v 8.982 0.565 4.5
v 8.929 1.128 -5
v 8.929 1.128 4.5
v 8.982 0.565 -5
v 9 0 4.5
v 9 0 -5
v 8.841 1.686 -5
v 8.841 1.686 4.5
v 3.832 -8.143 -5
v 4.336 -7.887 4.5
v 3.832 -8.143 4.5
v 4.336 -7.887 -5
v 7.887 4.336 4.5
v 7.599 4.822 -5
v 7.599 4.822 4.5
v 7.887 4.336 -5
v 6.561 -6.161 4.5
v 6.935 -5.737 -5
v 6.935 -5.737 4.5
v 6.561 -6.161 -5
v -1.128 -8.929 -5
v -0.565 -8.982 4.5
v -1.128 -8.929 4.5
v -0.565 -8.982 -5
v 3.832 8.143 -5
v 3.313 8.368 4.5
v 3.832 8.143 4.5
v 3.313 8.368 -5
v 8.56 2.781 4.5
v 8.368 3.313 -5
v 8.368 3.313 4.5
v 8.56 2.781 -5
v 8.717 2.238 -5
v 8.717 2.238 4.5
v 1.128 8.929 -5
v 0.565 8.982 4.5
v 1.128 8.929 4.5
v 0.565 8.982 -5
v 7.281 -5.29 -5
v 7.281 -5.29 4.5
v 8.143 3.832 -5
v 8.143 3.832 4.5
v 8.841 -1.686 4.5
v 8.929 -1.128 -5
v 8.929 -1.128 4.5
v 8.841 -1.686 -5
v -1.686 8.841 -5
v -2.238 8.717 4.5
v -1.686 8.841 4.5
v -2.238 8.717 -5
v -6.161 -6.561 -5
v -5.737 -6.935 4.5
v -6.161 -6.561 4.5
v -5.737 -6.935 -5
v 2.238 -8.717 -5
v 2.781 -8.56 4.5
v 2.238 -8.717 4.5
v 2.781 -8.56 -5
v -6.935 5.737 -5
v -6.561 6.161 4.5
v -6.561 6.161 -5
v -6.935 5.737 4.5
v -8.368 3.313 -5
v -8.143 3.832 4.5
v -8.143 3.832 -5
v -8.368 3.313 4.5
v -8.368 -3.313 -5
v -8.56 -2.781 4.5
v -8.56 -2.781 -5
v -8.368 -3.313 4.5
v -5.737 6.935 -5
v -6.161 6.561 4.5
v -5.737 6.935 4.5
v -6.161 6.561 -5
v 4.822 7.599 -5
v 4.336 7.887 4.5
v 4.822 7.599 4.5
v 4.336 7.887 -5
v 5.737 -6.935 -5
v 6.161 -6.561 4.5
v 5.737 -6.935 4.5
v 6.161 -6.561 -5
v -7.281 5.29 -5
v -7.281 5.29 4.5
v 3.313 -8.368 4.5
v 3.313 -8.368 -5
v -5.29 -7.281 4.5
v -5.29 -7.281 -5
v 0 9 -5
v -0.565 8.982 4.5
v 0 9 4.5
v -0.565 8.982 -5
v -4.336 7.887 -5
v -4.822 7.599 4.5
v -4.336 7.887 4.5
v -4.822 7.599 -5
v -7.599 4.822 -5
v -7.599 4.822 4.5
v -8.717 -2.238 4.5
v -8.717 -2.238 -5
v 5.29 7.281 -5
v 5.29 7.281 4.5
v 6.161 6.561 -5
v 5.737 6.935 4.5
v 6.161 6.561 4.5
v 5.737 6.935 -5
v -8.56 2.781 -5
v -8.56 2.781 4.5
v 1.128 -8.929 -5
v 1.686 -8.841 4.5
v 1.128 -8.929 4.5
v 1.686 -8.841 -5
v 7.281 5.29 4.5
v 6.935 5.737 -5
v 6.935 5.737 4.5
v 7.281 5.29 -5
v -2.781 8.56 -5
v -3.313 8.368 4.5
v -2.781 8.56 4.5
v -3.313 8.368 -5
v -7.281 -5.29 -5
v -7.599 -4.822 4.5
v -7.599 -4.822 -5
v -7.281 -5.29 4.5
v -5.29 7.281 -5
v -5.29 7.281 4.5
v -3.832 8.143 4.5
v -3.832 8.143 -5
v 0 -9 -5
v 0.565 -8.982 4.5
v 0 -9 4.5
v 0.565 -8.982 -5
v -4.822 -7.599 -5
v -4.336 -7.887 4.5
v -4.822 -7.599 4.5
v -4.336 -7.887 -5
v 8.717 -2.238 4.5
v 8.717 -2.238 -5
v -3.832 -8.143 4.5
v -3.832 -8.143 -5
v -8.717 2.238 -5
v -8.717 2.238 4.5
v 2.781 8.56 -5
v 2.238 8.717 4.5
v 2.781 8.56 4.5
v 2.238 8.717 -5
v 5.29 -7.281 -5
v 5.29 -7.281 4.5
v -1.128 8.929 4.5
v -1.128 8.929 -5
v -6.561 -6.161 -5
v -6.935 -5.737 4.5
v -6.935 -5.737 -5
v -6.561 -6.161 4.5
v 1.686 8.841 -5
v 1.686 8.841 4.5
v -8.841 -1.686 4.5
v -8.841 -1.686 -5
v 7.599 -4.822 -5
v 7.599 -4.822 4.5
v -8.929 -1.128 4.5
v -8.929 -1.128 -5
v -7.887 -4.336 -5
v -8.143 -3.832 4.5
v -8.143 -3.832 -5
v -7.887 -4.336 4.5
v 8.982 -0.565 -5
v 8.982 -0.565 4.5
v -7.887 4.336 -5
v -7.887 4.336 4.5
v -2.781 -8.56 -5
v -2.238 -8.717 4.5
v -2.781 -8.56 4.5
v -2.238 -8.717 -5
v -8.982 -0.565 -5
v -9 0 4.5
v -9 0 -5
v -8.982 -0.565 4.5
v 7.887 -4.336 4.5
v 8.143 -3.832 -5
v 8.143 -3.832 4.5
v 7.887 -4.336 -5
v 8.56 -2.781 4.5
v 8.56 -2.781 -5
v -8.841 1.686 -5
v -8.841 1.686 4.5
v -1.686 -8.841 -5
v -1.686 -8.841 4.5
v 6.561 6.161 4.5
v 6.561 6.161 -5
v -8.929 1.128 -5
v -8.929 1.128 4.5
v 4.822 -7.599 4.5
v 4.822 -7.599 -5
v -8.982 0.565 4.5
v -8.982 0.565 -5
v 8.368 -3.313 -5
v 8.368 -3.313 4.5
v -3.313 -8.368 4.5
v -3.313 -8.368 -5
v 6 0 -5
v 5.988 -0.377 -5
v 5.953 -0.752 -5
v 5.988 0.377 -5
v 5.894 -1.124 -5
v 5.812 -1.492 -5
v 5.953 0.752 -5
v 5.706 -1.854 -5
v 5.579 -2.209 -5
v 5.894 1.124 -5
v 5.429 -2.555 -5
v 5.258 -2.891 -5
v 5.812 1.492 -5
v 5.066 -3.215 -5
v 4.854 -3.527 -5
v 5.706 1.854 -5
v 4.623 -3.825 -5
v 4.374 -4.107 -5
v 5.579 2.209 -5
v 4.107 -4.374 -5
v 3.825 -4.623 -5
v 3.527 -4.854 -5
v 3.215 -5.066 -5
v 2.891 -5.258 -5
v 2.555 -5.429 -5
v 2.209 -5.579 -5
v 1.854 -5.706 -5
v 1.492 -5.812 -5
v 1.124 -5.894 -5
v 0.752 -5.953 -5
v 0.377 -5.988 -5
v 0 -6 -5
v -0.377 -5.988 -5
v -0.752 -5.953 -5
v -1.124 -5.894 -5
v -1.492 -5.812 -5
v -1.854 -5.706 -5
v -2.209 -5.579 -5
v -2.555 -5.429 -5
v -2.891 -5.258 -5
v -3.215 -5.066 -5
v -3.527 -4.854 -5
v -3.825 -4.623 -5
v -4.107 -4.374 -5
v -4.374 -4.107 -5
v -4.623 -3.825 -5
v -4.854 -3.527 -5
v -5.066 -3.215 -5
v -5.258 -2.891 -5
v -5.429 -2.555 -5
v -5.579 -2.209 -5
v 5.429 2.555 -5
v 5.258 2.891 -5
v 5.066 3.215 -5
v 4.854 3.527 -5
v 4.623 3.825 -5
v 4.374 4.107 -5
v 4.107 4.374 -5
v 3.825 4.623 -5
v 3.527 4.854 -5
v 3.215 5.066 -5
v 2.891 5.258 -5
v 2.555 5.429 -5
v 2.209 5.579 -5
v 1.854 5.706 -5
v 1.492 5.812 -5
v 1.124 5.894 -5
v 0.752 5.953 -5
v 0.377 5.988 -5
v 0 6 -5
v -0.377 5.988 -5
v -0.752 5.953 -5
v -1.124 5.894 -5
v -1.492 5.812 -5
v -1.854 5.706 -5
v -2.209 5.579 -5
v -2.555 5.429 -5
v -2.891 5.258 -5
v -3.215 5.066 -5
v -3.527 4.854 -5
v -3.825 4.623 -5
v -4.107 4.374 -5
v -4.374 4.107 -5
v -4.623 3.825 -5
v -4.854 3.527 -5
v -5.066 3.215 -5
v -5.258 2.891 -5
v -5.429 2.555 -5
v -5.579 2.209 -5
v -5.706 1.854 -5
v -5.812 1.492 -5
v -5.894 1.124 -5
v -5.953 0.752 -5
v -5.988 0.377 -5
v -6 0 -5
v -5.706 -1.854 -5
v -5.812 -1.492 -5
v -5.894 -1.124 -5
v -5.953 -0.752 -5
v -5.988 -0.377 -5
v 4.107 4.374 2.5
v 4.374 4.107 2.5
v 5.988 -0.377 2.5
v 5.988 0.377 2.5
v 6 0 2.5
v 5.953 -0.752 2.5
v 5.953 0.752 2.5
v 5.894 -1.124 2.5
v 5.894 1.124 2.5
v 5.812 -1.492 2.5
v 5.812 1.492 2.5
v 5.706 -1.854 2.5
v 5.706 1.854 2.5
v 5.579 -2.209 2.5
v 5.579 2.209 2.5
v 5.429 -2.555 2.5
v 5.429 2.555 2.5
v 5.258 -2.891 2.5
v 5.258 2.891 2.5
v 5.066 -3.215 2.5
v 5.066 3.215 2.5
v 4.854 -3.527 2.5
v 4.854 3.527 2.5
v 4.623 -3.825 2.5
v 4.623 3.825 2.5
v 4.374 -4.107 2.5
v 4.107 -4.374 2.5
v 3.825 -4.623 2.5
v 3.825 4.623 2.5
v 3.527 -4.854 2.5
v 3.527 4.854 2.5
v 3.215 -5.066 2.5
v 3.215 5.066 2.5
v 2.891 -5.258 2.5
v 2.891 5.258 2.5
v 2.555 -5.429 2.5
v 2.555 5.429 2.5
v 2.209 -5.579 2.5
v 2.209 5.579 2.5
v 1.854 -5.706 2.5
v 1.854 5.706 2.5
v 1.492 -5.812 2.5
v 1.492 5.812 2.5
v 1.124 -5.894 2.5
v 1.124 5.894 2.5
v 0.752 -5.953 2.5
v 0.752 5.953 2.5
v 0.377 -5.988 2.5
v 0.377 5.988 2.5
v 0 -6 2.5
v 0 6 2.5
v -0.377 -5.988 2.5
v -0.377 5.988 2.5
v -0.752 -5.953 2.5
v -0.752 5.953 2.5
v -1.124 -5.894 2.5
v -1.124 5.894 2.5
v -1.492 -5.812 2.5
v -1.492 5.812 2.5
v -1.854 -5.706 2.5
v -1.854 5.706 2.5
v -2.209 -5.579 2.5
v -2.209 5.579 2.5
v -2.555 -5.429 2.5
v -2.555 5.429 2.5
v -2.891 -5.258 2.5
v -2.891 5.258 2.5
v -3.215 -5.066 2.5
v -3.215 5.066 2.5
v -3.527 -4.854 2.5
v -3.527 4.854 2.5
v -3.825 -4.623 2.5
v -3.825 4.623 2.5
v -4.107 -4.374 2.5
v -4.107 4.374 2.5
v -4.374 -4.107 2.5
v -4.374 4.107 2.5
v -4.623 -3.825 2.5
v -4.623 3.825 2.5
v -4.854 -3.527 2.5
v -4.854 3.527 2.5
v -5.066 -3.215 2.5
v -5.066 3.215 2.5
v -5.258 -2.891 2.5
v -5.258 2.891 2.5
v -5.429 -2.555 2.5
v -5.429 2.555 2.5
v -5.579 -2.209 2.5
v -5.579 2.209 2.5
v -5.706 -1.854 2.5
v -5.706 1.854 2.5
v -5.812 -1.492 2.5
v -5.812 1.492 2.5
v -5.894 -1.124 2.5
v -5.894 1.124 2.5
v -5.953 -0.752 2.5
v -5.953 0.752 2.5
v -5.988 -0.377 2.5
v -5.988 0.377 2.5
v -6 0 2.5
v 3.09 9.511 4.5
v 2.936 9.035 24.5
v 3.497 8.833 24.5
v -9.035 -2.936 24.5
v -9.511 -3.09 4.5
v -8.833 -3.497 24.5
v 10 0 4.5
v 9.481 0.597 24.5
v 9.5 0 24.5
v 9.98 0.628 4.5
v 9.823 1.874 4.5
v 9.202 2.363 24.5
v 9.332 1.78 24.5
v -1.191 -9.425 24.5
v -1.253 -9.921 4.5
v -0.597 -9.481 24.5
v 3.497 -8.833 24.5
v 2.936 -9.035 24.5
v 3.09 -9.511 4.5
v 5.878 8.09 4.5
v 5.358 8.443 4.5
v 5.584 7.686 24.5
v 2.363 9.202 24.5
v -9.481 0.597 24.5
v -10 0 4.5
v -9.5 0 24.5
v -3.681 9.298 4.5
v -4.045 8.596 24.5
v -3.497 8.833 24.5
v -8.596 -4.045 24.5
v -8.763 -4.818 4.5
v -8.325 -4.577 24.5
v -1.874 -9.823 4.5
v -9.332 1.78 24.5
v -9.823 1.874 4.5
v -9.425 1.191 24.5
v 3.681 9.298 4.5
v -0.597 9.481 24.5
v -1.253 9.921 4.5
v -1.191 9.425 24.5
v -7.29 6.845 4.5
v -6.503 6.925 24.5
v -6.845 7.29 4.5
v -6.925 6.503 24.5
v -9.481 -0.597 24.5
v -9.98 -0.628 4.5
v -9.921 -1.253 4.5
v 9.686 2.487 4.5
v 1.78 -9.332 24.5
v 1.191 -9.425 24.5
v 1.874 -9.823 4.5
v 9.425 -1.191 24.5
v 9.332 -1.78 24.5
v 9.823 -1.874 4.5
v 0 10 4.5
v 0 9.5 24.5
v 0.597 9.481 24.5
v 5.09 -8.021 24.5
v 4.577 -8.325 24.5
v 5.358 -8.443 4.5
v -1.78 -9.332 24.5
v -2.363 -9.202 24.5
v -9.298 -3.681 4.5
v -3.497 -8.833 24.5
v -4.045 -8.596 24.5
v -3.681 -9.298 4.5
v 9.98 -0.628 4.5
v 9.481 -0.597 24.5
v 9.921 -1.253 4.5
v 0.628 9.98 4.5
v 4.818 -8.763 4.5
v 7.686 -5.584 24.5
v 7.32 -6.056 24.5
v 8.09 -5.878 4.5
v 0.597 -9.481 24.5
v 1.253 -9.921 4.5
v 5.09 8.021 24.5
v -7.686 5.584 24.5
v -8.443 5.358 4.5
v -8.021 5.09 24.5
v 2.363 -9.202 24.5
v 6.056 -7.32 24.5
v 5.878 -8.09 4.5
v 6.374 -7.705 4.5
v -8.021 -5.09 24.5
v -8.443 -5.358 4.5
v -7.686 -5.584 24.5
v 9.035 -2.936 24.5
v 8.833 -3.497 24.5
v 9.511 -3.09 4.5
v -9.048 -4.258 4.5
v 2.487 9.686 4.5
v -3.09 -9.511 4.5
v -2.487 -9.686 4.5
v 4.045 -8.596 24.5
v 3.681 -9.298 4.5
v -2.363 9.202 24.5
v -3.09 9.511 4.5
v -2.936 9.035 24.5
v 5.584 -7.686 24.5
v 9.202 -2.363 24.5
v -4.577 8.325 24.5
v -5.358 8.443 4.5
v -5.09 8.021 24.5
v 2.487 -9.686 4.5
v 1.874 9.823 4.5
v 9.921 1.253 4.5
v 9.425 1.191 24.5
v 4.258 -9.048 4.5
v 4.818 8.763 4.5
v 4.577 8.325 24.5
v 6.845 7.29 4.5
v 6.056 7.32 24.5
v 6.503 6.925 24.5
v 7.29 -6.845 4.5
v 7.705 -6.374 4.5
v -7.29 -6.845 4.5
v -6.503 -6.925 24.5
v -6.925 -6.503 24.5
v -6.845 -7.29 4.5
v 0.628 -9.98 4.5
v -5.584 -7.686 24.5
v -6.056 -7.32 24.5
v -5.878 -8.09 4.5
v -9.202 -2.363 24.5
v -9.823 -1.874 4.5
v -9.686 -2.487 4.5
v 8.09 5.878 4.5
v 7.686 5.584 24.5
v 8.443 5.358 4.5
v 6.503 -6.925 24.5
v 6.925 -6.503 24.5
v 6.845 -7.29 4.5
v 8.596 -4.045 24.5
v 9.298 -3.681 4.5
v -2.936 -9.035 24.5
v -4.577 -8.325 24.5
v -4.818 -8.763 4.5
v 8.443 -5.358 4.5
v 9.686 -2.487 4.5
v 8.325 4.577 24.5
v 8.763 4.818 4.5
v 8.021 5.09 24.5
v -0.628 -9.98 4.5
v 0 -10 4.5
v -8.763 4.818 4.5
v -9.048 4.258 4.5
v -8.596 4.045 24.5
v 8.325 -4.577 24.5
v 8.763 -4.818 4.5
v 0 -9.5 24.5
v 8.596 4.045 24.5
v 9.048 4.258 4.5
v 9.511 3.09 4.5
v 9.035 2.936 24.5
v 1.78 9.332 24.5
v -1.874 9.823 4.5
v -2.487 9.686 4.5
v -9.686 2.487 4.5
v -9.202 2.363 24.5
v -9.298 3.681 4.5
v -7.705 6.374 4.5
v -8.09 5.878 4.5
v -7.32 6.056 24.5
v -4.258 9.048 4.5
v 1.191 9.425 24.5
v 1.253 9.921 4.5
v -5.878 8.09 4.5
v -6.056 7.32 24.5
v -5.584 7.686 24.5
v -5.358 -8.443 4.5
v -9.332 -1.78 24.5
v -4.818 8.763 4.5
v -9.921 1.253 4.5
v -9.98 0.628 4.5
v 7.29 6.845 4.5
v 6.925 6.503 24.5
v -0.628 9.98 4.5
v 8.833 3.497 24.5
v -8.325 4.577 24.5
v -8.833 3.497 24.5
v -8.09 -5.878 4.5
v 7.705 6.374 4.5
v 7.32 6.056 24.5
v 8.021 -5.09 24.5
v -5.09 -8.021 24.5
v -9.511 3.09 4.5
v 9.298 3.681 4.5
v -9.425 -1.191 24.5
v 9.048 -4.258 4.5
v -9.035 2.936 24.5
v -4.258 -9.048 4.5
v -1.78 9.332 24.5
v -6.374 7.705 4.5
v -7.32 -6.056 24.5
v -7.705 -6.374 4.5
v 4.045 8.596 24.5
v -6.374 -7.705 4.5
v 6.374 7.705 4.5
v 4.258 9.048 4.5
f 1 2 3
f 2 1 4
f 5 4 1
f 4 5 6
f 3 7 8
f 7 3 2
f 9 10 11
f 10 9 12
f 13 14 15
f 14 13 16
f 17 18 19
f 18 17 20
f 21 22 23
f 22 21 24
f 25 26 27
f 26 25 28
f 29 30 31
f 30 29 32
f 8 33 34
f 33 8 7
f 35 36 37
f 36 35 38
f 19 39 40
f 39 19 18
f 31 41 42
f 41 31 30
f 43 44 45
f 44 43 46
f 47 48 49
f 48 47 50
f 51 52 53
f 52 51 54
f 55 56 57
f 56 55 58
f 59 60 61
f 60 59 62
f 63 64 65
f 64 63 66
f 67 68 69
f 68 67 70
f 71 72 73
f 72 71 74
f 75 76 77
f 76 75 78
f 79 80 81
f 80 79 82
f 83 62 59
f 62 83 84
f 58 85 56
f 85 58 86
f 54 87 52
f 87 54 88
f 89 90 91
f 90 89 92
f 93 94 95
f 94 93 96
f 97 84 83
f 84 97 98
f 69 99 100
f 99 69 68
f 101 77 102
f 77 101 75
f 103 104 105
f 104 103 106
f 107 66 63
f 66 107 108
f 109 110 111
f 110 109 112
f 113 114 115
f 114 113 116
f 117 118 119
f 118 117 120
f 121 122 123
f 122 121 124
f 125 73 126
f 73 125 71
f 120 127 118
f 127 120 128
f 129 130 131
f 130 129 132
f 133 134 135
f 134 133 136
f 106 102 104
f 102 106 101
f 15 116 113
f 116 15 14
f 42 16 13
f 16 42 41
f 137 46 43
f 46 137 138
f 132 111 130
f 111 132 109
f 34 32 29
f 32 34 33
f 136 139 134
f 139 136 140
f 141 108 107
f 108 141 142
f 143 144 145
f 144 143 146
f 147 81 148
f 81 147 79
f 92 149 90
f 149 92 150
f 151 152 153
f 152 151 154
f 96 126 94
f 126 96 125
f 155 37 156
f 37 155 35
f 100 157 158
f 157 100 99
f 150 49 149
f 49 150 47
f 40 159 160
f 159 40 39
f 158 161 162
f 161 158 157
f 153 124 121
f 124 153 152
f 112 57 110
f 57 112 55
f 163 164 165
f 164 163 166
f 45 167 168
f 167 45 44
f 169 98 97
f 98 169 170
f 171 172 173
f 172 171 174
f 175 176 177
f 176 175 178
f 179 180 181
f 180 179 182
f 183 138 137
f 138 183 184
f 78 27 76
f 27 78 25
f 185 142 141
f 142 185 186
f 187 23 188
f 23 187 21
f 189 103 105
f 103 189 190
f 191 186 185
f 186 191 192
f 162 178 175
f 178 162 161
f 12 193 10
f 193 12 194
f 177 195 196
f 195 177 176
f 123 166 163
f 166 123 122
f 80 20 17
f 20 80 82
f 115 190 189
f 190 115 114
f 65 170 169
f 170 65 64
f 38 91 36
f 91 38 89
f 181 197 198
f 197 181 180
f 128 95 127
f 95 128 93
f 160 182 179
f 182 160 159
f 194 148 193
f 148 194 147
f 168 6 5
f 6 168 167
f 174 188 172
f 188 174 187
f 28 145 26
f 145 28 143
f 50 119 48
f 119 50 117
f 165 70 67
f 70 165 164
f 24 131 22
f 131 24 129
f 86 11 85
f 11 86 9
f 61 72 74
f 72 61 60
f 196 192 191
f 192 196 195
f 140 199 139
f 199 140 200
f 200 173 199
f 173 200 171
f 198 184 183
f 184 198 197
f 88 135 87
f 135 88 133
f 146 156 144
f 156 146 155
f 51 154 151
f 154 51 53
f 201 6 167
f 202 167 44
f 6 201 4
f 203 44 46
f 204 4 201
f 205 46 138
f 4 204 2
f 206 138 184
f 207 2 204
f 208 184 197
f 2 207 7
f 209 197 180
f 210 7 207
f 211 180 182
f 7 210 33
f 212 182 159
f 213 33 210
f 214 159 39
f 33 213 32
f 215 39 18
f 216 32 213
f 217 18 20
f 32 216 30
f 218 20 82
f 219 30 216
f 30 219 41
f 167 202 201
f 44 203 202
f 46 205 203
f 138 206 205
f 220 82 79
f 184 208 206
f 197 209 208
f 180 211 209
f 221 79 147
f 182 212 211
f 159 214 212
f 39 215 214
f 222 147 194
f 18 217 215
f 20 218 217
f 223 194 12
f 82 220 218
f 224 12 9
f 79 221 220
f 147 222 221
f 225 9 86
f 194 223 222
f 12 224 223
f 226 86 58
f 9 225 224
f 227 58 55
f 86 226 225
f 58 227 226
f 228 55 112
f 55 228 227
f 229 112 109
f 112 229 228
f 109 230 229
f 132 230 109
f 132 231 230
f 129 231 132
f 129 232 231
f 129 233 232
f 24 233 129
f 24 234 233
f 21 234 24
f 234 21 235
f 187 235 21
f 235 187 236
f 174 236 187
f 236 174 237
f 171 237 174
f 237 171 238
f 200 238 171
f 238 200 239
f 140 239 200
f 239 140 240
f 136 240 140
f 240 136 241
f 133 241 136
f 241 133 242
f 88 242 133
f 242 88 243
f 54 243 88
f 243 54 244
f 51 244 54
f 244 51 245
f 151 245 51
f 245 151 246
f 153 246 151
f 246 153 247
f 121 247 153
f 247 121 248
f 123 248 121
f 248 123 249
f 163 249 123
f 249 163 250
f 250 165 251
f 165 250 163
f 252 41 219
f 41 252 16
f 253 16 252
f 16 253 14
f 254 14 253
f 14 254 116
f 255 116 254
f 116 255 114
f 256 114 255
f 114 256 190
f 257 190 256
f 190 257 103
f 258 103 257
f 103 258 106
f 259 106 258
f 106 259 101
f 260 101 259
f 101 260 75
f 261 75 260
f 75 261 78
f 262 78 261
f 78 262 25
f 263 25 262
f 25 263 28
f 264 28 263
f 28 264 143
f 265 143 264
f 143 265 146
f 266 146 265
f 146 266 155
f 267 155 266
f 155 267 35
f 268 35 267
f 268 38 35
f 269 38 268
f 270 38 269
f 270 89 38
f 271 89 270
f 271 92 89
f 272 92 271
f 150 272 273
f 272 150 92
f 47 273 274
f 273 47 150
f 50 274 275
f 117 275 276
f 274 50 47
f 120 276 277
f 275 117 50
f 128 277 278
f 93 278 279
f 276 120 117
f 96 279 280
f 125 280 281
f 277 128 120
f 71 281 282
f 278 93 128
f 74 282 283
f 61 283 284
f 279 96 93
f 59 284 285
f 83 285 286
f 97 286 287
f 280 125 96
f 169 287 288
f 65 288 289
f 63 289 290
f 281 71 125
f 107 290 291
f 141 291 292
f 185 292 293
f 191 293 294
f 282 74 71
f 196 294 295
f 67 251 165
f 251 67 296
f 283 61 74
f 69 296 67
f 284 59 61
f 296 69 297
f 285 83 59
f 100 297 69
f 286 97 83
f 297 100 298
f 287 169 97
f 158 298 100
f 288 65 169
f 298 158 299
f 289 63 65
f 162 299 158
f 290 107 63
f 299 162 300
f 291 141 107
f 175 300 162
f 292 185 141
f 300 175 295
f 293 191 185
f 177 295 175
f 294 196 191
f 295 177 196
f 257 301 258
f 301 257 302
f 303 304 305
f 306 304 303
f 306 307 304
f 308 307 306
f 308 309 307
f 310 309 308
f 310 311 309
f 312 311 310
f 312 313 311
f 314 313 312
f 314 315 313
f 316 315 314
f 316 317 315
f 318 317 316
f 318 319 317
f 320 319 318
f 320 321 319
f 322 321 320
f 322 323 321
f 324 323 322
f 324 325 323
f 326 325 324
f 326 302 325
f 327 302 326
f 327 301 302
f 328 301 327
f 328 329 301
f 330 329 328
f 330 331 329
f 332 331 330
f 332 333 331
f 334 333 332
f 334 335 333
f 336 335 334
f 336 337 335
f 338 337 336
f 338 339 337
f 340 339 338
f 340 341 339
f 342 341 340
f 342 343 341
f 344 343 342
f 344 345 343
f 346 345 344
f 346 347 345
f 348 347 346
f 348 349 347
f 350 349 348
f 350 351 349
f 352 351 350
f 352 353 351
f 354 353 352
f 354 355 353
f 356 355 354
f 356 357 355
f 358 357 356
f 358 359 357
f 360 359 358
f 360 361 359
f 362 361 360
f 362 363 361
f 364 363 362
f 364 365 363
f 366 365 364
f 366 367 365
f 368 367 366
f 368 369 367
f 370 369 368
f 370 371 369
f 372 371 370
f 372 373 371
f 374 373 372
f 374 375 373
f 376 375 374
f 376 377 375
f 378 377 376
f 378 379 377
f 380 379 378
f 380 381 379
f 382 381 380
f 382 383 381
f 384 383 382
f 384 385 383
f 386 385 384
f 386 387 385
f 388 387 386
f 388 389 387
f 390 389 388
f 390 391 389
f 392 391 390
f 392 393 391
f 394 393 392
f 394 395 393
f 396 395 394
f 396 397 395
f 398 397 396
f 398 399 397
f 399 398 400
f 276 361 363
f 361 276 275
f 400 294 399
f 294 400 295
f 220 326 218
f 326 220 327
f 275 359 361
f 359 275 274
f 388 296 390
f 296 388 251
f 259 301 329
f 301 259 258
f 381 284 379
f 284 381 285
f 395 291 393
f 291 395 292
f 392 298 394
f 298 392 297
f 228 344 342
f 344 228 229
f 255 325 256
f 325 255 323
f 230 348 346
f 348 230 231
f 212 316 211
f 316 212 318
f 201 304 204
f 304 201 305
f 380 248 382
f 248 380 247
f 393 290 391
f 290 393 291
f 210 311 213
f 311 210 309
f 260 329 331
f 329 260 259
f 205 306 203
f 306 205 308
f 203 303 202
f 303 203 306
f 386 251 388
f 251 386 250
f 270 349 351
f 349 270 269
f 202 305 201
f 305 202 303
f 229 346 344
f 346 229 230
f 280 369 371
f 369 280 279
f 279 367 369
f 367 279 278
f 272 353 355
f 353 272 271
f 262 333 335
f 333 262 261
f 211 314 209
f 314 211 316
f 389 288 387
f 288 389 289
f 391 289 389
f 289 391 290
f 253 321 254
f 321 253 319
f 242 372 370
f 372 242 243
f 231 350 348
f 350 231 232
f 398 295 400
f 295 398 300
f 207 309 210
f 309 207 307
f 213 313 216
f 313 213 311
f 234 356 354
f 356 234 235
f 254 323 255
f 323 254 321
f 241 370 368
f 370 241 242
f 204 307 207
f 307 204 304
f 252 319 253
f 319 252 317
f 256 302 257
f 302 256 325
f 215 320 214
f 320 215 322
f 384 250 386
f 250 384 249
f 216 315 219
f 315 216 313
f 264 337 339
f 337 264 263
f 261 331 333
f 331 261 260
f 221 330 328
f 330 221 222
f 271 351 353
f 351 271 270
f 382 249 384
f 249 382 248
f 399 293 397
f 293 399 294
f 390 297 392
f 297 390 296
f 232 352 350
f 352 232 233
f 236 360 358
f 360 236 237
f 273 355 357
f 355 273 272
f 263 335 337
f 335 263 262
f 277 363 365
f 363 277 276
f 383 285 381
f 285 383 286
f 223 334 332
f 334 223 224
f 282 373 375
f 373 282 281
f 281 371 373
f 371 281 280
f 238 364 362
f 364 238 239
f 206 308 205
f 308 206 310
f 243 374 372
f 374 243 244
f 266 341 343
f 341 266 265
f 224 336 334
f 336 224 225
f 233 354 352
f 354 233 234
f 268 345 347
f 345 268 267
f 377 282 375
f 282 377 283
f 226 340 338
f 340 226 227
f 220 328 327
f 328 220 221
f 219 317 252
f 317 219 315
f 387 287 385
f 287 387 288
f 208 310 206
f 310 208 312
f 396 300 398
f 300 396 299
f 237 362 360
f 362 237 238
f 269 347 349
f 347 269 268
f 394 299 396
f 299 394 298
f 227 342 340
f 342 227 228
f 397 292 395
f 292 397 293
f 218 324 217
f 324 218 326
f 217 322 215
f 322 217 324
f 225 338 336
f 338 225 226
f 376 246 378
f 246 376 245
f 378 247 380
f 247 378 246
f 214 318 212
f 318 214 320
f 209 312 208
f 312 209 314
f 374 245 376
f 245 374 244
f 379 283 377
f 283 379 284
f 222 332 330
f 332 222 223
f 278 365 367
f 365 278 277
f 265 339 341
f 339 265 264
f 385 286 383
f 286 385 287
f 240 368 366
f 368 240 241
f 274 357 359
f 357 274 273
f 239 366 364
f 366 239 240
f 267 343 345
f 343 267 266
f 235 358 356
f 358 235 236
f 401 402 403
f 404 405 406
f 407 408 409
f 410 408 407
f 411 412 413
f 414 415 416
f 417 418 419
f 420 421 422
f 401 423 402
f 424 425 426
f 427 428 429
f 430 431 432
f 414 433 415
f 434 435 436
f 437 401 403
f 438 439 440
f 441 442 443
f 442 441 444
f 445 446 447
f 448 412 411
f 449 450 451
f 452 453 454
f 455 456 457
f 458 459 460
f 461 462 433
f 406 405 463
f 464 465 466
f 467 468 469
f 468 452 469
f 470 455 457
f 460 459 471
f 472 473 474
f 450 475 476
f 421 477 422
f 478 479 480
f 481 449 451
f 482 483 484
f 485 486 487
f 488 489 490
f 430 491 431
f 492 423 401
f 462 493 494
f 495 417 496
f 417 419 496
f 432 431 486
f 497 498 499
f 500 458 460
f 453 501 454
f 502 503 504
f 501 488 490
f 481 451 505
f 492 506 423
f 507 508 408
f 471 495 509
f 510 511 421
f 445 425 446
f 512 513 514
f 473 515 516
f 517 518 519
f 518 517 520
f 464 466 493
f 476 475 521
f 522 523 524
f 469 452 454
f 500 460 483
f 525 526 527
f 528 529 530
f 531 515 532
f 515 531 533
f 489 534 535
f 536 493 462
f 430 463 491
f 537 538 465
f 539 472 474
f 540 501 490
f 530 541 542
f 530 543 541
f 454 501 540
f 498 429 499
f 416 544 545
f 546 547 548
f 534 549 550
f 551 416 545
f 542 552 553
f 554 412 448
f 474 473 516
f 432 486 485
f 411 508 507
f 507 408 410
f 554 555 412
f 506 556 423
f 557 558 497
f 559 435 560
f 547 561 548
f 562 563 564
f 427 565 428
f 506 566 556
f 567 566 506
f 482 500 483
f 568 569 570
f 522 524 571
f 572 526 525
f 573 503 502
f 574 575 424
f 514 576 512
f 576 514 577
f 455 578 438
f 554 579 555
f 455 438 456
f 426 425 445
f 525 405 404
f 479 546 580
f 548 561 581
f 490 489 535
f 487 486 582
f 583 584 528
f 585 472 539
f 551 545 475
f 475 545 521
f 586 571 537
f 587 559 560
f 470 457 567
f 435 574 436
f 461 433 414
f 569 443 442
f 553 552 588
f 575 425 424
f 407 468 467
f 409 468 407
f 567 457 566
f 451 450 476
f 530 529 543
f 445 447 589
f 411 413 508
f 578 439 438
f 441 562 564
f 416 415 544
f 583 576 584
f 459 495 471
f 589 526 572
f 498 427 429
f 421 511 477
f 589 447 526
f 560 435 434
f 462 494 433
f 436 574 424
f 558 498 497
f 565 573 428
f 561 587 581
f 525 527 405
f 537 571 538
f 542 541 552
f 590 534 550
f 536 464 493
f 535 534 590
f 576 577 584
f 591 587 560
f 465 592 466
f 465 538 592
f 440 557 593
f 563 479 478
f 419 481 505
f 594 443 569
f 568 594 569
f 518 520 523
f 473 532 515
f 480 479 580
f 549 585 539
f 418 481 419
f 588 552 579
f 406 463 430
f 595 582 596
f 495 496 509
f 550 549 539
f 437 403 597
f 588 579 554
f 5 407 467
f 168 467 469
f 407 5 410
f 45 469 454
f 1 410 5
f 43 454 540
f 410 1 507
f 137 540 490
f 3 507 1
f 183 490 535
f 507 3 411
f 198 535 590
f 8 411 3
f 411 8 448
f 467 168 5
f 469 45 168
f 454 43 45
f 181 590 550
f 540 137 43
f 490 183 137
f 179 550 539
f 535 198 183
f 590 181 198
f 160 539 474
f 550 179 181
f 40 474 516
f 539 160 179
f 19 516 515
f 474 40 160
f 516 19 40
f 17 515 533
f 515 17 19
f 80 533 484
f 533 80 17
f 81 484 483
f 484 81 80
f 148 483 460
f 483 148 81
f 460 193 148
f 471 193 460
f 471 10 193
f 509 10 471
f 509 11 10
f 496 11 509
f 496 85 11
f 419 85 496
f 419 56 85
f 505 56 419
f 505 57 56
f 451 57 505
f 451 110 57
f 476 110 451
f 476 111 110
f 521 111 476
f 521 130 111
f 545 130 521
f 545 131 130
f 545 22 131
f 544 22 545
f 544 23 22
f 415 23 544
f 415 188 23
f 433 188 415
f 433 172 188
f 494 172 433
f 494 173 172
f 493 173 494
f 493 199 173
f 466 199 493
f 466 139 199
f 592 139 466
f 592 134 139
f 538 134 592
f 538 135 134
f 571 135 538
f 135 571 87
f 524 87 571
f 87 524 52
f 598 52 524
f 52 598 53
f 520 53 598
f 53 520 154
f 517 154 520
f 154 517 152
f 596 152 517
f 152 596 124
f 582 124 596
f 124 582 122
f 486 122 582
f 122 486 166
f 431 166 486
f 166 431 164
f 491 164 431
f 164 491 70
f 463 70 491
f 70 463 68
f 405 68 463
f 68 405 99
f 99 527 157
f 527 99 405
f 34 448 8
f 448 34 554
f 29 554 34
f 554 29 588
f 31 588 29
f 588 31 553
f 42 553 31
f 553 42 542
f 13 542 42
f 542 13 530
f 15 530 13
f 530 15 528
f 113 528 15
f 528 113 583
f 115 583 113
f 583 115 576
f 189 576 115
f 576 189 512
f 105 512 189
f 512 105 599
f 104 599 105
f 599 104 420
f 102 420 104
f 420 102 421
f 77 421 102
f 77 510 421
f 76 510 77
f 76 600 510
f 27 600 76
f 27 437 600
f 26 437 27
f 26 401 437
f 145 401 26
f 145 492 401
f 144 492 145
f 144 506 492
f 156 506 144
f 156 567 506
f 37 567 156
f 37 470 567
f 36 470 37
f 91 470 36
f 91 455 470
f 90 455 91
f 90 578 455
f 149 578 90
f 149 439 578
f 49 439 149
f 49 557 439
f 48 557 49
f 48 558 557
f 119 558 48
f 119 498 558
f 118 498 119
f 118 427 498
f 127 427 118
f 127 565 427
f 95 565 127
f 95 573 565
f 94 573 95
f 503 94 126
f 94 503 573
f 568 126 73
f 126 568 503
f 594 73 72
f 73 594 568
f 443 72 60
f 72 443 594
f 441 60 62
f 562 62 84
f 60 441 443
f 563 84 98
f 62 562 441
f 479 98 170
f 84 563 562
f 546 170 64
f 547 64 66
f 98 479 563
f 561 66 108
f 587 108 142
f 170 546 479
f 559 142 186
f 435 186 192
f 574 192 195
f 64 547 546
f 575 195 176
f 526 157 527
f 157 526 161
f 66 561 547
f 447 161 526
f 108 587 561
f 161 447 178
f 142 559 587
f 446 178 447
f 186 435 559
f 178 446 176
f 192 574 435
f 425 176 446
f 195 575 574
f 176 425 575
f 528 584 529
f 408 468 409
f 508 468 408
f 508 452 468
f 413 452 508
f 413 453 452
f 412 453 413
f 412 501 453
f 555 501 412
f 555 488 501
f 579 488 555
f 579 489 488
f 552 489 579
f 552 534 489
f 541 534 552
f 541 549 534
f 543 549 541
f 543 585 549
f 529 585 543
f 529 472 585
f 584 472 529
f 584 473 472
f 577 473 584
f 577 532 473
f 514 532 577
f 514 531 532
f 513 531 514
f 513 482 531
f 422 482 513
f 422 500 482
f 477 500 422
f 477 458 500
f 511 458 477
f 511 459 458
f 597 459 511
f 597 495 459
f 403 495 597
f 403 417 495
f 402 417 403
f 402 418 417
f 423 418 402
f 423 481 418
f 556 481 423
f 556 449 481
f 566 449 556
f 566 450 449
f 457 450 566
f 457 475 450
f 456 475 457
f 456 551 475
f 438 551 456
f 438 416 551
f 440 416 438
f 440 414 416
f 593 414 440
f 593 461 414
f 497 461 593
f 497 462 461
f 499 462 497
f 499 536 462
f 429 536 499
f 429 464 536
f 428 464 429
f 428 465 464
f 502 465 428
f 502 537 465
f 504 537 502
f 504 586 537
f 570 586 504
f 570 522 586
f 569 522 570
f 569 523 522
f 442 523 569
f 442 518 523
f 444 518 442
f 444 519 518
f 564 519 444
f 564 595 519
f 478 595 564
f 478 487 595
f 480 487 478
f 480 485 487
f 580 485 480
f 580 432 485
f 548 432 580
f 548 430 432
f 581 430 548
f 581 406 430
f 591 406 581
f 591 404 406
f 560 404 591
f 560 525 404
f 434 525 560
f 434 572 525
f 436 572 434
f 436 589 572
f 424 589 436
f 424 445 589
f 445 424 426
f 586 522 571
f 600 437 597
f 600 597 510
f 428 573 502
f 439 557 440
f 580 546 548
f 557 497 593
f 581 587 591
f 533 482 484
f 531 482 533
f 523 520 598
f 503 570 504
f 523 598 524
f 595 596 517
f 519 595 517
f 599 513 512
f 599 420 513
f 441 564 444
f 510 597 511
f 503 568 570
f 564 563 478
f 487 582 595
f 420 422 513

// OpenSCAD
// Parameters for the components
$fn = 100; // Smoothing parameter for rounded shapes

// 1. Solid Cylinder
module solid_cylinder() {
    union() {
        // The main solid cylinder with slight taper (reduced the taper as requested)
        cylinder(h = 20, r1 = 10, r2 = 9.5, center = true);
    }
}

// 2. Hollow Cylinder
module hollow_cylinder() {
    difference() {
        // Base cylinder
        cylinder(h = 10, r = 9, center = true);
        
        // Hollow inside (recessed area)
        translate([0, 0, -5]) 
            cylinder(h = 15, r = 6, center = true);
    }
}

// Assemble the model layers
module model() {
    // Layer 1: Solid Cylinder (Topmost layer, slightly lowered as requested)
    translate([0, 0, 14.5]) 
        solid_cylinder();
    
    // Layer 2: Hollow Cylinder (Base layer remains unchanged)
    hollow_cylinder();
}

// Render the final model
model();
